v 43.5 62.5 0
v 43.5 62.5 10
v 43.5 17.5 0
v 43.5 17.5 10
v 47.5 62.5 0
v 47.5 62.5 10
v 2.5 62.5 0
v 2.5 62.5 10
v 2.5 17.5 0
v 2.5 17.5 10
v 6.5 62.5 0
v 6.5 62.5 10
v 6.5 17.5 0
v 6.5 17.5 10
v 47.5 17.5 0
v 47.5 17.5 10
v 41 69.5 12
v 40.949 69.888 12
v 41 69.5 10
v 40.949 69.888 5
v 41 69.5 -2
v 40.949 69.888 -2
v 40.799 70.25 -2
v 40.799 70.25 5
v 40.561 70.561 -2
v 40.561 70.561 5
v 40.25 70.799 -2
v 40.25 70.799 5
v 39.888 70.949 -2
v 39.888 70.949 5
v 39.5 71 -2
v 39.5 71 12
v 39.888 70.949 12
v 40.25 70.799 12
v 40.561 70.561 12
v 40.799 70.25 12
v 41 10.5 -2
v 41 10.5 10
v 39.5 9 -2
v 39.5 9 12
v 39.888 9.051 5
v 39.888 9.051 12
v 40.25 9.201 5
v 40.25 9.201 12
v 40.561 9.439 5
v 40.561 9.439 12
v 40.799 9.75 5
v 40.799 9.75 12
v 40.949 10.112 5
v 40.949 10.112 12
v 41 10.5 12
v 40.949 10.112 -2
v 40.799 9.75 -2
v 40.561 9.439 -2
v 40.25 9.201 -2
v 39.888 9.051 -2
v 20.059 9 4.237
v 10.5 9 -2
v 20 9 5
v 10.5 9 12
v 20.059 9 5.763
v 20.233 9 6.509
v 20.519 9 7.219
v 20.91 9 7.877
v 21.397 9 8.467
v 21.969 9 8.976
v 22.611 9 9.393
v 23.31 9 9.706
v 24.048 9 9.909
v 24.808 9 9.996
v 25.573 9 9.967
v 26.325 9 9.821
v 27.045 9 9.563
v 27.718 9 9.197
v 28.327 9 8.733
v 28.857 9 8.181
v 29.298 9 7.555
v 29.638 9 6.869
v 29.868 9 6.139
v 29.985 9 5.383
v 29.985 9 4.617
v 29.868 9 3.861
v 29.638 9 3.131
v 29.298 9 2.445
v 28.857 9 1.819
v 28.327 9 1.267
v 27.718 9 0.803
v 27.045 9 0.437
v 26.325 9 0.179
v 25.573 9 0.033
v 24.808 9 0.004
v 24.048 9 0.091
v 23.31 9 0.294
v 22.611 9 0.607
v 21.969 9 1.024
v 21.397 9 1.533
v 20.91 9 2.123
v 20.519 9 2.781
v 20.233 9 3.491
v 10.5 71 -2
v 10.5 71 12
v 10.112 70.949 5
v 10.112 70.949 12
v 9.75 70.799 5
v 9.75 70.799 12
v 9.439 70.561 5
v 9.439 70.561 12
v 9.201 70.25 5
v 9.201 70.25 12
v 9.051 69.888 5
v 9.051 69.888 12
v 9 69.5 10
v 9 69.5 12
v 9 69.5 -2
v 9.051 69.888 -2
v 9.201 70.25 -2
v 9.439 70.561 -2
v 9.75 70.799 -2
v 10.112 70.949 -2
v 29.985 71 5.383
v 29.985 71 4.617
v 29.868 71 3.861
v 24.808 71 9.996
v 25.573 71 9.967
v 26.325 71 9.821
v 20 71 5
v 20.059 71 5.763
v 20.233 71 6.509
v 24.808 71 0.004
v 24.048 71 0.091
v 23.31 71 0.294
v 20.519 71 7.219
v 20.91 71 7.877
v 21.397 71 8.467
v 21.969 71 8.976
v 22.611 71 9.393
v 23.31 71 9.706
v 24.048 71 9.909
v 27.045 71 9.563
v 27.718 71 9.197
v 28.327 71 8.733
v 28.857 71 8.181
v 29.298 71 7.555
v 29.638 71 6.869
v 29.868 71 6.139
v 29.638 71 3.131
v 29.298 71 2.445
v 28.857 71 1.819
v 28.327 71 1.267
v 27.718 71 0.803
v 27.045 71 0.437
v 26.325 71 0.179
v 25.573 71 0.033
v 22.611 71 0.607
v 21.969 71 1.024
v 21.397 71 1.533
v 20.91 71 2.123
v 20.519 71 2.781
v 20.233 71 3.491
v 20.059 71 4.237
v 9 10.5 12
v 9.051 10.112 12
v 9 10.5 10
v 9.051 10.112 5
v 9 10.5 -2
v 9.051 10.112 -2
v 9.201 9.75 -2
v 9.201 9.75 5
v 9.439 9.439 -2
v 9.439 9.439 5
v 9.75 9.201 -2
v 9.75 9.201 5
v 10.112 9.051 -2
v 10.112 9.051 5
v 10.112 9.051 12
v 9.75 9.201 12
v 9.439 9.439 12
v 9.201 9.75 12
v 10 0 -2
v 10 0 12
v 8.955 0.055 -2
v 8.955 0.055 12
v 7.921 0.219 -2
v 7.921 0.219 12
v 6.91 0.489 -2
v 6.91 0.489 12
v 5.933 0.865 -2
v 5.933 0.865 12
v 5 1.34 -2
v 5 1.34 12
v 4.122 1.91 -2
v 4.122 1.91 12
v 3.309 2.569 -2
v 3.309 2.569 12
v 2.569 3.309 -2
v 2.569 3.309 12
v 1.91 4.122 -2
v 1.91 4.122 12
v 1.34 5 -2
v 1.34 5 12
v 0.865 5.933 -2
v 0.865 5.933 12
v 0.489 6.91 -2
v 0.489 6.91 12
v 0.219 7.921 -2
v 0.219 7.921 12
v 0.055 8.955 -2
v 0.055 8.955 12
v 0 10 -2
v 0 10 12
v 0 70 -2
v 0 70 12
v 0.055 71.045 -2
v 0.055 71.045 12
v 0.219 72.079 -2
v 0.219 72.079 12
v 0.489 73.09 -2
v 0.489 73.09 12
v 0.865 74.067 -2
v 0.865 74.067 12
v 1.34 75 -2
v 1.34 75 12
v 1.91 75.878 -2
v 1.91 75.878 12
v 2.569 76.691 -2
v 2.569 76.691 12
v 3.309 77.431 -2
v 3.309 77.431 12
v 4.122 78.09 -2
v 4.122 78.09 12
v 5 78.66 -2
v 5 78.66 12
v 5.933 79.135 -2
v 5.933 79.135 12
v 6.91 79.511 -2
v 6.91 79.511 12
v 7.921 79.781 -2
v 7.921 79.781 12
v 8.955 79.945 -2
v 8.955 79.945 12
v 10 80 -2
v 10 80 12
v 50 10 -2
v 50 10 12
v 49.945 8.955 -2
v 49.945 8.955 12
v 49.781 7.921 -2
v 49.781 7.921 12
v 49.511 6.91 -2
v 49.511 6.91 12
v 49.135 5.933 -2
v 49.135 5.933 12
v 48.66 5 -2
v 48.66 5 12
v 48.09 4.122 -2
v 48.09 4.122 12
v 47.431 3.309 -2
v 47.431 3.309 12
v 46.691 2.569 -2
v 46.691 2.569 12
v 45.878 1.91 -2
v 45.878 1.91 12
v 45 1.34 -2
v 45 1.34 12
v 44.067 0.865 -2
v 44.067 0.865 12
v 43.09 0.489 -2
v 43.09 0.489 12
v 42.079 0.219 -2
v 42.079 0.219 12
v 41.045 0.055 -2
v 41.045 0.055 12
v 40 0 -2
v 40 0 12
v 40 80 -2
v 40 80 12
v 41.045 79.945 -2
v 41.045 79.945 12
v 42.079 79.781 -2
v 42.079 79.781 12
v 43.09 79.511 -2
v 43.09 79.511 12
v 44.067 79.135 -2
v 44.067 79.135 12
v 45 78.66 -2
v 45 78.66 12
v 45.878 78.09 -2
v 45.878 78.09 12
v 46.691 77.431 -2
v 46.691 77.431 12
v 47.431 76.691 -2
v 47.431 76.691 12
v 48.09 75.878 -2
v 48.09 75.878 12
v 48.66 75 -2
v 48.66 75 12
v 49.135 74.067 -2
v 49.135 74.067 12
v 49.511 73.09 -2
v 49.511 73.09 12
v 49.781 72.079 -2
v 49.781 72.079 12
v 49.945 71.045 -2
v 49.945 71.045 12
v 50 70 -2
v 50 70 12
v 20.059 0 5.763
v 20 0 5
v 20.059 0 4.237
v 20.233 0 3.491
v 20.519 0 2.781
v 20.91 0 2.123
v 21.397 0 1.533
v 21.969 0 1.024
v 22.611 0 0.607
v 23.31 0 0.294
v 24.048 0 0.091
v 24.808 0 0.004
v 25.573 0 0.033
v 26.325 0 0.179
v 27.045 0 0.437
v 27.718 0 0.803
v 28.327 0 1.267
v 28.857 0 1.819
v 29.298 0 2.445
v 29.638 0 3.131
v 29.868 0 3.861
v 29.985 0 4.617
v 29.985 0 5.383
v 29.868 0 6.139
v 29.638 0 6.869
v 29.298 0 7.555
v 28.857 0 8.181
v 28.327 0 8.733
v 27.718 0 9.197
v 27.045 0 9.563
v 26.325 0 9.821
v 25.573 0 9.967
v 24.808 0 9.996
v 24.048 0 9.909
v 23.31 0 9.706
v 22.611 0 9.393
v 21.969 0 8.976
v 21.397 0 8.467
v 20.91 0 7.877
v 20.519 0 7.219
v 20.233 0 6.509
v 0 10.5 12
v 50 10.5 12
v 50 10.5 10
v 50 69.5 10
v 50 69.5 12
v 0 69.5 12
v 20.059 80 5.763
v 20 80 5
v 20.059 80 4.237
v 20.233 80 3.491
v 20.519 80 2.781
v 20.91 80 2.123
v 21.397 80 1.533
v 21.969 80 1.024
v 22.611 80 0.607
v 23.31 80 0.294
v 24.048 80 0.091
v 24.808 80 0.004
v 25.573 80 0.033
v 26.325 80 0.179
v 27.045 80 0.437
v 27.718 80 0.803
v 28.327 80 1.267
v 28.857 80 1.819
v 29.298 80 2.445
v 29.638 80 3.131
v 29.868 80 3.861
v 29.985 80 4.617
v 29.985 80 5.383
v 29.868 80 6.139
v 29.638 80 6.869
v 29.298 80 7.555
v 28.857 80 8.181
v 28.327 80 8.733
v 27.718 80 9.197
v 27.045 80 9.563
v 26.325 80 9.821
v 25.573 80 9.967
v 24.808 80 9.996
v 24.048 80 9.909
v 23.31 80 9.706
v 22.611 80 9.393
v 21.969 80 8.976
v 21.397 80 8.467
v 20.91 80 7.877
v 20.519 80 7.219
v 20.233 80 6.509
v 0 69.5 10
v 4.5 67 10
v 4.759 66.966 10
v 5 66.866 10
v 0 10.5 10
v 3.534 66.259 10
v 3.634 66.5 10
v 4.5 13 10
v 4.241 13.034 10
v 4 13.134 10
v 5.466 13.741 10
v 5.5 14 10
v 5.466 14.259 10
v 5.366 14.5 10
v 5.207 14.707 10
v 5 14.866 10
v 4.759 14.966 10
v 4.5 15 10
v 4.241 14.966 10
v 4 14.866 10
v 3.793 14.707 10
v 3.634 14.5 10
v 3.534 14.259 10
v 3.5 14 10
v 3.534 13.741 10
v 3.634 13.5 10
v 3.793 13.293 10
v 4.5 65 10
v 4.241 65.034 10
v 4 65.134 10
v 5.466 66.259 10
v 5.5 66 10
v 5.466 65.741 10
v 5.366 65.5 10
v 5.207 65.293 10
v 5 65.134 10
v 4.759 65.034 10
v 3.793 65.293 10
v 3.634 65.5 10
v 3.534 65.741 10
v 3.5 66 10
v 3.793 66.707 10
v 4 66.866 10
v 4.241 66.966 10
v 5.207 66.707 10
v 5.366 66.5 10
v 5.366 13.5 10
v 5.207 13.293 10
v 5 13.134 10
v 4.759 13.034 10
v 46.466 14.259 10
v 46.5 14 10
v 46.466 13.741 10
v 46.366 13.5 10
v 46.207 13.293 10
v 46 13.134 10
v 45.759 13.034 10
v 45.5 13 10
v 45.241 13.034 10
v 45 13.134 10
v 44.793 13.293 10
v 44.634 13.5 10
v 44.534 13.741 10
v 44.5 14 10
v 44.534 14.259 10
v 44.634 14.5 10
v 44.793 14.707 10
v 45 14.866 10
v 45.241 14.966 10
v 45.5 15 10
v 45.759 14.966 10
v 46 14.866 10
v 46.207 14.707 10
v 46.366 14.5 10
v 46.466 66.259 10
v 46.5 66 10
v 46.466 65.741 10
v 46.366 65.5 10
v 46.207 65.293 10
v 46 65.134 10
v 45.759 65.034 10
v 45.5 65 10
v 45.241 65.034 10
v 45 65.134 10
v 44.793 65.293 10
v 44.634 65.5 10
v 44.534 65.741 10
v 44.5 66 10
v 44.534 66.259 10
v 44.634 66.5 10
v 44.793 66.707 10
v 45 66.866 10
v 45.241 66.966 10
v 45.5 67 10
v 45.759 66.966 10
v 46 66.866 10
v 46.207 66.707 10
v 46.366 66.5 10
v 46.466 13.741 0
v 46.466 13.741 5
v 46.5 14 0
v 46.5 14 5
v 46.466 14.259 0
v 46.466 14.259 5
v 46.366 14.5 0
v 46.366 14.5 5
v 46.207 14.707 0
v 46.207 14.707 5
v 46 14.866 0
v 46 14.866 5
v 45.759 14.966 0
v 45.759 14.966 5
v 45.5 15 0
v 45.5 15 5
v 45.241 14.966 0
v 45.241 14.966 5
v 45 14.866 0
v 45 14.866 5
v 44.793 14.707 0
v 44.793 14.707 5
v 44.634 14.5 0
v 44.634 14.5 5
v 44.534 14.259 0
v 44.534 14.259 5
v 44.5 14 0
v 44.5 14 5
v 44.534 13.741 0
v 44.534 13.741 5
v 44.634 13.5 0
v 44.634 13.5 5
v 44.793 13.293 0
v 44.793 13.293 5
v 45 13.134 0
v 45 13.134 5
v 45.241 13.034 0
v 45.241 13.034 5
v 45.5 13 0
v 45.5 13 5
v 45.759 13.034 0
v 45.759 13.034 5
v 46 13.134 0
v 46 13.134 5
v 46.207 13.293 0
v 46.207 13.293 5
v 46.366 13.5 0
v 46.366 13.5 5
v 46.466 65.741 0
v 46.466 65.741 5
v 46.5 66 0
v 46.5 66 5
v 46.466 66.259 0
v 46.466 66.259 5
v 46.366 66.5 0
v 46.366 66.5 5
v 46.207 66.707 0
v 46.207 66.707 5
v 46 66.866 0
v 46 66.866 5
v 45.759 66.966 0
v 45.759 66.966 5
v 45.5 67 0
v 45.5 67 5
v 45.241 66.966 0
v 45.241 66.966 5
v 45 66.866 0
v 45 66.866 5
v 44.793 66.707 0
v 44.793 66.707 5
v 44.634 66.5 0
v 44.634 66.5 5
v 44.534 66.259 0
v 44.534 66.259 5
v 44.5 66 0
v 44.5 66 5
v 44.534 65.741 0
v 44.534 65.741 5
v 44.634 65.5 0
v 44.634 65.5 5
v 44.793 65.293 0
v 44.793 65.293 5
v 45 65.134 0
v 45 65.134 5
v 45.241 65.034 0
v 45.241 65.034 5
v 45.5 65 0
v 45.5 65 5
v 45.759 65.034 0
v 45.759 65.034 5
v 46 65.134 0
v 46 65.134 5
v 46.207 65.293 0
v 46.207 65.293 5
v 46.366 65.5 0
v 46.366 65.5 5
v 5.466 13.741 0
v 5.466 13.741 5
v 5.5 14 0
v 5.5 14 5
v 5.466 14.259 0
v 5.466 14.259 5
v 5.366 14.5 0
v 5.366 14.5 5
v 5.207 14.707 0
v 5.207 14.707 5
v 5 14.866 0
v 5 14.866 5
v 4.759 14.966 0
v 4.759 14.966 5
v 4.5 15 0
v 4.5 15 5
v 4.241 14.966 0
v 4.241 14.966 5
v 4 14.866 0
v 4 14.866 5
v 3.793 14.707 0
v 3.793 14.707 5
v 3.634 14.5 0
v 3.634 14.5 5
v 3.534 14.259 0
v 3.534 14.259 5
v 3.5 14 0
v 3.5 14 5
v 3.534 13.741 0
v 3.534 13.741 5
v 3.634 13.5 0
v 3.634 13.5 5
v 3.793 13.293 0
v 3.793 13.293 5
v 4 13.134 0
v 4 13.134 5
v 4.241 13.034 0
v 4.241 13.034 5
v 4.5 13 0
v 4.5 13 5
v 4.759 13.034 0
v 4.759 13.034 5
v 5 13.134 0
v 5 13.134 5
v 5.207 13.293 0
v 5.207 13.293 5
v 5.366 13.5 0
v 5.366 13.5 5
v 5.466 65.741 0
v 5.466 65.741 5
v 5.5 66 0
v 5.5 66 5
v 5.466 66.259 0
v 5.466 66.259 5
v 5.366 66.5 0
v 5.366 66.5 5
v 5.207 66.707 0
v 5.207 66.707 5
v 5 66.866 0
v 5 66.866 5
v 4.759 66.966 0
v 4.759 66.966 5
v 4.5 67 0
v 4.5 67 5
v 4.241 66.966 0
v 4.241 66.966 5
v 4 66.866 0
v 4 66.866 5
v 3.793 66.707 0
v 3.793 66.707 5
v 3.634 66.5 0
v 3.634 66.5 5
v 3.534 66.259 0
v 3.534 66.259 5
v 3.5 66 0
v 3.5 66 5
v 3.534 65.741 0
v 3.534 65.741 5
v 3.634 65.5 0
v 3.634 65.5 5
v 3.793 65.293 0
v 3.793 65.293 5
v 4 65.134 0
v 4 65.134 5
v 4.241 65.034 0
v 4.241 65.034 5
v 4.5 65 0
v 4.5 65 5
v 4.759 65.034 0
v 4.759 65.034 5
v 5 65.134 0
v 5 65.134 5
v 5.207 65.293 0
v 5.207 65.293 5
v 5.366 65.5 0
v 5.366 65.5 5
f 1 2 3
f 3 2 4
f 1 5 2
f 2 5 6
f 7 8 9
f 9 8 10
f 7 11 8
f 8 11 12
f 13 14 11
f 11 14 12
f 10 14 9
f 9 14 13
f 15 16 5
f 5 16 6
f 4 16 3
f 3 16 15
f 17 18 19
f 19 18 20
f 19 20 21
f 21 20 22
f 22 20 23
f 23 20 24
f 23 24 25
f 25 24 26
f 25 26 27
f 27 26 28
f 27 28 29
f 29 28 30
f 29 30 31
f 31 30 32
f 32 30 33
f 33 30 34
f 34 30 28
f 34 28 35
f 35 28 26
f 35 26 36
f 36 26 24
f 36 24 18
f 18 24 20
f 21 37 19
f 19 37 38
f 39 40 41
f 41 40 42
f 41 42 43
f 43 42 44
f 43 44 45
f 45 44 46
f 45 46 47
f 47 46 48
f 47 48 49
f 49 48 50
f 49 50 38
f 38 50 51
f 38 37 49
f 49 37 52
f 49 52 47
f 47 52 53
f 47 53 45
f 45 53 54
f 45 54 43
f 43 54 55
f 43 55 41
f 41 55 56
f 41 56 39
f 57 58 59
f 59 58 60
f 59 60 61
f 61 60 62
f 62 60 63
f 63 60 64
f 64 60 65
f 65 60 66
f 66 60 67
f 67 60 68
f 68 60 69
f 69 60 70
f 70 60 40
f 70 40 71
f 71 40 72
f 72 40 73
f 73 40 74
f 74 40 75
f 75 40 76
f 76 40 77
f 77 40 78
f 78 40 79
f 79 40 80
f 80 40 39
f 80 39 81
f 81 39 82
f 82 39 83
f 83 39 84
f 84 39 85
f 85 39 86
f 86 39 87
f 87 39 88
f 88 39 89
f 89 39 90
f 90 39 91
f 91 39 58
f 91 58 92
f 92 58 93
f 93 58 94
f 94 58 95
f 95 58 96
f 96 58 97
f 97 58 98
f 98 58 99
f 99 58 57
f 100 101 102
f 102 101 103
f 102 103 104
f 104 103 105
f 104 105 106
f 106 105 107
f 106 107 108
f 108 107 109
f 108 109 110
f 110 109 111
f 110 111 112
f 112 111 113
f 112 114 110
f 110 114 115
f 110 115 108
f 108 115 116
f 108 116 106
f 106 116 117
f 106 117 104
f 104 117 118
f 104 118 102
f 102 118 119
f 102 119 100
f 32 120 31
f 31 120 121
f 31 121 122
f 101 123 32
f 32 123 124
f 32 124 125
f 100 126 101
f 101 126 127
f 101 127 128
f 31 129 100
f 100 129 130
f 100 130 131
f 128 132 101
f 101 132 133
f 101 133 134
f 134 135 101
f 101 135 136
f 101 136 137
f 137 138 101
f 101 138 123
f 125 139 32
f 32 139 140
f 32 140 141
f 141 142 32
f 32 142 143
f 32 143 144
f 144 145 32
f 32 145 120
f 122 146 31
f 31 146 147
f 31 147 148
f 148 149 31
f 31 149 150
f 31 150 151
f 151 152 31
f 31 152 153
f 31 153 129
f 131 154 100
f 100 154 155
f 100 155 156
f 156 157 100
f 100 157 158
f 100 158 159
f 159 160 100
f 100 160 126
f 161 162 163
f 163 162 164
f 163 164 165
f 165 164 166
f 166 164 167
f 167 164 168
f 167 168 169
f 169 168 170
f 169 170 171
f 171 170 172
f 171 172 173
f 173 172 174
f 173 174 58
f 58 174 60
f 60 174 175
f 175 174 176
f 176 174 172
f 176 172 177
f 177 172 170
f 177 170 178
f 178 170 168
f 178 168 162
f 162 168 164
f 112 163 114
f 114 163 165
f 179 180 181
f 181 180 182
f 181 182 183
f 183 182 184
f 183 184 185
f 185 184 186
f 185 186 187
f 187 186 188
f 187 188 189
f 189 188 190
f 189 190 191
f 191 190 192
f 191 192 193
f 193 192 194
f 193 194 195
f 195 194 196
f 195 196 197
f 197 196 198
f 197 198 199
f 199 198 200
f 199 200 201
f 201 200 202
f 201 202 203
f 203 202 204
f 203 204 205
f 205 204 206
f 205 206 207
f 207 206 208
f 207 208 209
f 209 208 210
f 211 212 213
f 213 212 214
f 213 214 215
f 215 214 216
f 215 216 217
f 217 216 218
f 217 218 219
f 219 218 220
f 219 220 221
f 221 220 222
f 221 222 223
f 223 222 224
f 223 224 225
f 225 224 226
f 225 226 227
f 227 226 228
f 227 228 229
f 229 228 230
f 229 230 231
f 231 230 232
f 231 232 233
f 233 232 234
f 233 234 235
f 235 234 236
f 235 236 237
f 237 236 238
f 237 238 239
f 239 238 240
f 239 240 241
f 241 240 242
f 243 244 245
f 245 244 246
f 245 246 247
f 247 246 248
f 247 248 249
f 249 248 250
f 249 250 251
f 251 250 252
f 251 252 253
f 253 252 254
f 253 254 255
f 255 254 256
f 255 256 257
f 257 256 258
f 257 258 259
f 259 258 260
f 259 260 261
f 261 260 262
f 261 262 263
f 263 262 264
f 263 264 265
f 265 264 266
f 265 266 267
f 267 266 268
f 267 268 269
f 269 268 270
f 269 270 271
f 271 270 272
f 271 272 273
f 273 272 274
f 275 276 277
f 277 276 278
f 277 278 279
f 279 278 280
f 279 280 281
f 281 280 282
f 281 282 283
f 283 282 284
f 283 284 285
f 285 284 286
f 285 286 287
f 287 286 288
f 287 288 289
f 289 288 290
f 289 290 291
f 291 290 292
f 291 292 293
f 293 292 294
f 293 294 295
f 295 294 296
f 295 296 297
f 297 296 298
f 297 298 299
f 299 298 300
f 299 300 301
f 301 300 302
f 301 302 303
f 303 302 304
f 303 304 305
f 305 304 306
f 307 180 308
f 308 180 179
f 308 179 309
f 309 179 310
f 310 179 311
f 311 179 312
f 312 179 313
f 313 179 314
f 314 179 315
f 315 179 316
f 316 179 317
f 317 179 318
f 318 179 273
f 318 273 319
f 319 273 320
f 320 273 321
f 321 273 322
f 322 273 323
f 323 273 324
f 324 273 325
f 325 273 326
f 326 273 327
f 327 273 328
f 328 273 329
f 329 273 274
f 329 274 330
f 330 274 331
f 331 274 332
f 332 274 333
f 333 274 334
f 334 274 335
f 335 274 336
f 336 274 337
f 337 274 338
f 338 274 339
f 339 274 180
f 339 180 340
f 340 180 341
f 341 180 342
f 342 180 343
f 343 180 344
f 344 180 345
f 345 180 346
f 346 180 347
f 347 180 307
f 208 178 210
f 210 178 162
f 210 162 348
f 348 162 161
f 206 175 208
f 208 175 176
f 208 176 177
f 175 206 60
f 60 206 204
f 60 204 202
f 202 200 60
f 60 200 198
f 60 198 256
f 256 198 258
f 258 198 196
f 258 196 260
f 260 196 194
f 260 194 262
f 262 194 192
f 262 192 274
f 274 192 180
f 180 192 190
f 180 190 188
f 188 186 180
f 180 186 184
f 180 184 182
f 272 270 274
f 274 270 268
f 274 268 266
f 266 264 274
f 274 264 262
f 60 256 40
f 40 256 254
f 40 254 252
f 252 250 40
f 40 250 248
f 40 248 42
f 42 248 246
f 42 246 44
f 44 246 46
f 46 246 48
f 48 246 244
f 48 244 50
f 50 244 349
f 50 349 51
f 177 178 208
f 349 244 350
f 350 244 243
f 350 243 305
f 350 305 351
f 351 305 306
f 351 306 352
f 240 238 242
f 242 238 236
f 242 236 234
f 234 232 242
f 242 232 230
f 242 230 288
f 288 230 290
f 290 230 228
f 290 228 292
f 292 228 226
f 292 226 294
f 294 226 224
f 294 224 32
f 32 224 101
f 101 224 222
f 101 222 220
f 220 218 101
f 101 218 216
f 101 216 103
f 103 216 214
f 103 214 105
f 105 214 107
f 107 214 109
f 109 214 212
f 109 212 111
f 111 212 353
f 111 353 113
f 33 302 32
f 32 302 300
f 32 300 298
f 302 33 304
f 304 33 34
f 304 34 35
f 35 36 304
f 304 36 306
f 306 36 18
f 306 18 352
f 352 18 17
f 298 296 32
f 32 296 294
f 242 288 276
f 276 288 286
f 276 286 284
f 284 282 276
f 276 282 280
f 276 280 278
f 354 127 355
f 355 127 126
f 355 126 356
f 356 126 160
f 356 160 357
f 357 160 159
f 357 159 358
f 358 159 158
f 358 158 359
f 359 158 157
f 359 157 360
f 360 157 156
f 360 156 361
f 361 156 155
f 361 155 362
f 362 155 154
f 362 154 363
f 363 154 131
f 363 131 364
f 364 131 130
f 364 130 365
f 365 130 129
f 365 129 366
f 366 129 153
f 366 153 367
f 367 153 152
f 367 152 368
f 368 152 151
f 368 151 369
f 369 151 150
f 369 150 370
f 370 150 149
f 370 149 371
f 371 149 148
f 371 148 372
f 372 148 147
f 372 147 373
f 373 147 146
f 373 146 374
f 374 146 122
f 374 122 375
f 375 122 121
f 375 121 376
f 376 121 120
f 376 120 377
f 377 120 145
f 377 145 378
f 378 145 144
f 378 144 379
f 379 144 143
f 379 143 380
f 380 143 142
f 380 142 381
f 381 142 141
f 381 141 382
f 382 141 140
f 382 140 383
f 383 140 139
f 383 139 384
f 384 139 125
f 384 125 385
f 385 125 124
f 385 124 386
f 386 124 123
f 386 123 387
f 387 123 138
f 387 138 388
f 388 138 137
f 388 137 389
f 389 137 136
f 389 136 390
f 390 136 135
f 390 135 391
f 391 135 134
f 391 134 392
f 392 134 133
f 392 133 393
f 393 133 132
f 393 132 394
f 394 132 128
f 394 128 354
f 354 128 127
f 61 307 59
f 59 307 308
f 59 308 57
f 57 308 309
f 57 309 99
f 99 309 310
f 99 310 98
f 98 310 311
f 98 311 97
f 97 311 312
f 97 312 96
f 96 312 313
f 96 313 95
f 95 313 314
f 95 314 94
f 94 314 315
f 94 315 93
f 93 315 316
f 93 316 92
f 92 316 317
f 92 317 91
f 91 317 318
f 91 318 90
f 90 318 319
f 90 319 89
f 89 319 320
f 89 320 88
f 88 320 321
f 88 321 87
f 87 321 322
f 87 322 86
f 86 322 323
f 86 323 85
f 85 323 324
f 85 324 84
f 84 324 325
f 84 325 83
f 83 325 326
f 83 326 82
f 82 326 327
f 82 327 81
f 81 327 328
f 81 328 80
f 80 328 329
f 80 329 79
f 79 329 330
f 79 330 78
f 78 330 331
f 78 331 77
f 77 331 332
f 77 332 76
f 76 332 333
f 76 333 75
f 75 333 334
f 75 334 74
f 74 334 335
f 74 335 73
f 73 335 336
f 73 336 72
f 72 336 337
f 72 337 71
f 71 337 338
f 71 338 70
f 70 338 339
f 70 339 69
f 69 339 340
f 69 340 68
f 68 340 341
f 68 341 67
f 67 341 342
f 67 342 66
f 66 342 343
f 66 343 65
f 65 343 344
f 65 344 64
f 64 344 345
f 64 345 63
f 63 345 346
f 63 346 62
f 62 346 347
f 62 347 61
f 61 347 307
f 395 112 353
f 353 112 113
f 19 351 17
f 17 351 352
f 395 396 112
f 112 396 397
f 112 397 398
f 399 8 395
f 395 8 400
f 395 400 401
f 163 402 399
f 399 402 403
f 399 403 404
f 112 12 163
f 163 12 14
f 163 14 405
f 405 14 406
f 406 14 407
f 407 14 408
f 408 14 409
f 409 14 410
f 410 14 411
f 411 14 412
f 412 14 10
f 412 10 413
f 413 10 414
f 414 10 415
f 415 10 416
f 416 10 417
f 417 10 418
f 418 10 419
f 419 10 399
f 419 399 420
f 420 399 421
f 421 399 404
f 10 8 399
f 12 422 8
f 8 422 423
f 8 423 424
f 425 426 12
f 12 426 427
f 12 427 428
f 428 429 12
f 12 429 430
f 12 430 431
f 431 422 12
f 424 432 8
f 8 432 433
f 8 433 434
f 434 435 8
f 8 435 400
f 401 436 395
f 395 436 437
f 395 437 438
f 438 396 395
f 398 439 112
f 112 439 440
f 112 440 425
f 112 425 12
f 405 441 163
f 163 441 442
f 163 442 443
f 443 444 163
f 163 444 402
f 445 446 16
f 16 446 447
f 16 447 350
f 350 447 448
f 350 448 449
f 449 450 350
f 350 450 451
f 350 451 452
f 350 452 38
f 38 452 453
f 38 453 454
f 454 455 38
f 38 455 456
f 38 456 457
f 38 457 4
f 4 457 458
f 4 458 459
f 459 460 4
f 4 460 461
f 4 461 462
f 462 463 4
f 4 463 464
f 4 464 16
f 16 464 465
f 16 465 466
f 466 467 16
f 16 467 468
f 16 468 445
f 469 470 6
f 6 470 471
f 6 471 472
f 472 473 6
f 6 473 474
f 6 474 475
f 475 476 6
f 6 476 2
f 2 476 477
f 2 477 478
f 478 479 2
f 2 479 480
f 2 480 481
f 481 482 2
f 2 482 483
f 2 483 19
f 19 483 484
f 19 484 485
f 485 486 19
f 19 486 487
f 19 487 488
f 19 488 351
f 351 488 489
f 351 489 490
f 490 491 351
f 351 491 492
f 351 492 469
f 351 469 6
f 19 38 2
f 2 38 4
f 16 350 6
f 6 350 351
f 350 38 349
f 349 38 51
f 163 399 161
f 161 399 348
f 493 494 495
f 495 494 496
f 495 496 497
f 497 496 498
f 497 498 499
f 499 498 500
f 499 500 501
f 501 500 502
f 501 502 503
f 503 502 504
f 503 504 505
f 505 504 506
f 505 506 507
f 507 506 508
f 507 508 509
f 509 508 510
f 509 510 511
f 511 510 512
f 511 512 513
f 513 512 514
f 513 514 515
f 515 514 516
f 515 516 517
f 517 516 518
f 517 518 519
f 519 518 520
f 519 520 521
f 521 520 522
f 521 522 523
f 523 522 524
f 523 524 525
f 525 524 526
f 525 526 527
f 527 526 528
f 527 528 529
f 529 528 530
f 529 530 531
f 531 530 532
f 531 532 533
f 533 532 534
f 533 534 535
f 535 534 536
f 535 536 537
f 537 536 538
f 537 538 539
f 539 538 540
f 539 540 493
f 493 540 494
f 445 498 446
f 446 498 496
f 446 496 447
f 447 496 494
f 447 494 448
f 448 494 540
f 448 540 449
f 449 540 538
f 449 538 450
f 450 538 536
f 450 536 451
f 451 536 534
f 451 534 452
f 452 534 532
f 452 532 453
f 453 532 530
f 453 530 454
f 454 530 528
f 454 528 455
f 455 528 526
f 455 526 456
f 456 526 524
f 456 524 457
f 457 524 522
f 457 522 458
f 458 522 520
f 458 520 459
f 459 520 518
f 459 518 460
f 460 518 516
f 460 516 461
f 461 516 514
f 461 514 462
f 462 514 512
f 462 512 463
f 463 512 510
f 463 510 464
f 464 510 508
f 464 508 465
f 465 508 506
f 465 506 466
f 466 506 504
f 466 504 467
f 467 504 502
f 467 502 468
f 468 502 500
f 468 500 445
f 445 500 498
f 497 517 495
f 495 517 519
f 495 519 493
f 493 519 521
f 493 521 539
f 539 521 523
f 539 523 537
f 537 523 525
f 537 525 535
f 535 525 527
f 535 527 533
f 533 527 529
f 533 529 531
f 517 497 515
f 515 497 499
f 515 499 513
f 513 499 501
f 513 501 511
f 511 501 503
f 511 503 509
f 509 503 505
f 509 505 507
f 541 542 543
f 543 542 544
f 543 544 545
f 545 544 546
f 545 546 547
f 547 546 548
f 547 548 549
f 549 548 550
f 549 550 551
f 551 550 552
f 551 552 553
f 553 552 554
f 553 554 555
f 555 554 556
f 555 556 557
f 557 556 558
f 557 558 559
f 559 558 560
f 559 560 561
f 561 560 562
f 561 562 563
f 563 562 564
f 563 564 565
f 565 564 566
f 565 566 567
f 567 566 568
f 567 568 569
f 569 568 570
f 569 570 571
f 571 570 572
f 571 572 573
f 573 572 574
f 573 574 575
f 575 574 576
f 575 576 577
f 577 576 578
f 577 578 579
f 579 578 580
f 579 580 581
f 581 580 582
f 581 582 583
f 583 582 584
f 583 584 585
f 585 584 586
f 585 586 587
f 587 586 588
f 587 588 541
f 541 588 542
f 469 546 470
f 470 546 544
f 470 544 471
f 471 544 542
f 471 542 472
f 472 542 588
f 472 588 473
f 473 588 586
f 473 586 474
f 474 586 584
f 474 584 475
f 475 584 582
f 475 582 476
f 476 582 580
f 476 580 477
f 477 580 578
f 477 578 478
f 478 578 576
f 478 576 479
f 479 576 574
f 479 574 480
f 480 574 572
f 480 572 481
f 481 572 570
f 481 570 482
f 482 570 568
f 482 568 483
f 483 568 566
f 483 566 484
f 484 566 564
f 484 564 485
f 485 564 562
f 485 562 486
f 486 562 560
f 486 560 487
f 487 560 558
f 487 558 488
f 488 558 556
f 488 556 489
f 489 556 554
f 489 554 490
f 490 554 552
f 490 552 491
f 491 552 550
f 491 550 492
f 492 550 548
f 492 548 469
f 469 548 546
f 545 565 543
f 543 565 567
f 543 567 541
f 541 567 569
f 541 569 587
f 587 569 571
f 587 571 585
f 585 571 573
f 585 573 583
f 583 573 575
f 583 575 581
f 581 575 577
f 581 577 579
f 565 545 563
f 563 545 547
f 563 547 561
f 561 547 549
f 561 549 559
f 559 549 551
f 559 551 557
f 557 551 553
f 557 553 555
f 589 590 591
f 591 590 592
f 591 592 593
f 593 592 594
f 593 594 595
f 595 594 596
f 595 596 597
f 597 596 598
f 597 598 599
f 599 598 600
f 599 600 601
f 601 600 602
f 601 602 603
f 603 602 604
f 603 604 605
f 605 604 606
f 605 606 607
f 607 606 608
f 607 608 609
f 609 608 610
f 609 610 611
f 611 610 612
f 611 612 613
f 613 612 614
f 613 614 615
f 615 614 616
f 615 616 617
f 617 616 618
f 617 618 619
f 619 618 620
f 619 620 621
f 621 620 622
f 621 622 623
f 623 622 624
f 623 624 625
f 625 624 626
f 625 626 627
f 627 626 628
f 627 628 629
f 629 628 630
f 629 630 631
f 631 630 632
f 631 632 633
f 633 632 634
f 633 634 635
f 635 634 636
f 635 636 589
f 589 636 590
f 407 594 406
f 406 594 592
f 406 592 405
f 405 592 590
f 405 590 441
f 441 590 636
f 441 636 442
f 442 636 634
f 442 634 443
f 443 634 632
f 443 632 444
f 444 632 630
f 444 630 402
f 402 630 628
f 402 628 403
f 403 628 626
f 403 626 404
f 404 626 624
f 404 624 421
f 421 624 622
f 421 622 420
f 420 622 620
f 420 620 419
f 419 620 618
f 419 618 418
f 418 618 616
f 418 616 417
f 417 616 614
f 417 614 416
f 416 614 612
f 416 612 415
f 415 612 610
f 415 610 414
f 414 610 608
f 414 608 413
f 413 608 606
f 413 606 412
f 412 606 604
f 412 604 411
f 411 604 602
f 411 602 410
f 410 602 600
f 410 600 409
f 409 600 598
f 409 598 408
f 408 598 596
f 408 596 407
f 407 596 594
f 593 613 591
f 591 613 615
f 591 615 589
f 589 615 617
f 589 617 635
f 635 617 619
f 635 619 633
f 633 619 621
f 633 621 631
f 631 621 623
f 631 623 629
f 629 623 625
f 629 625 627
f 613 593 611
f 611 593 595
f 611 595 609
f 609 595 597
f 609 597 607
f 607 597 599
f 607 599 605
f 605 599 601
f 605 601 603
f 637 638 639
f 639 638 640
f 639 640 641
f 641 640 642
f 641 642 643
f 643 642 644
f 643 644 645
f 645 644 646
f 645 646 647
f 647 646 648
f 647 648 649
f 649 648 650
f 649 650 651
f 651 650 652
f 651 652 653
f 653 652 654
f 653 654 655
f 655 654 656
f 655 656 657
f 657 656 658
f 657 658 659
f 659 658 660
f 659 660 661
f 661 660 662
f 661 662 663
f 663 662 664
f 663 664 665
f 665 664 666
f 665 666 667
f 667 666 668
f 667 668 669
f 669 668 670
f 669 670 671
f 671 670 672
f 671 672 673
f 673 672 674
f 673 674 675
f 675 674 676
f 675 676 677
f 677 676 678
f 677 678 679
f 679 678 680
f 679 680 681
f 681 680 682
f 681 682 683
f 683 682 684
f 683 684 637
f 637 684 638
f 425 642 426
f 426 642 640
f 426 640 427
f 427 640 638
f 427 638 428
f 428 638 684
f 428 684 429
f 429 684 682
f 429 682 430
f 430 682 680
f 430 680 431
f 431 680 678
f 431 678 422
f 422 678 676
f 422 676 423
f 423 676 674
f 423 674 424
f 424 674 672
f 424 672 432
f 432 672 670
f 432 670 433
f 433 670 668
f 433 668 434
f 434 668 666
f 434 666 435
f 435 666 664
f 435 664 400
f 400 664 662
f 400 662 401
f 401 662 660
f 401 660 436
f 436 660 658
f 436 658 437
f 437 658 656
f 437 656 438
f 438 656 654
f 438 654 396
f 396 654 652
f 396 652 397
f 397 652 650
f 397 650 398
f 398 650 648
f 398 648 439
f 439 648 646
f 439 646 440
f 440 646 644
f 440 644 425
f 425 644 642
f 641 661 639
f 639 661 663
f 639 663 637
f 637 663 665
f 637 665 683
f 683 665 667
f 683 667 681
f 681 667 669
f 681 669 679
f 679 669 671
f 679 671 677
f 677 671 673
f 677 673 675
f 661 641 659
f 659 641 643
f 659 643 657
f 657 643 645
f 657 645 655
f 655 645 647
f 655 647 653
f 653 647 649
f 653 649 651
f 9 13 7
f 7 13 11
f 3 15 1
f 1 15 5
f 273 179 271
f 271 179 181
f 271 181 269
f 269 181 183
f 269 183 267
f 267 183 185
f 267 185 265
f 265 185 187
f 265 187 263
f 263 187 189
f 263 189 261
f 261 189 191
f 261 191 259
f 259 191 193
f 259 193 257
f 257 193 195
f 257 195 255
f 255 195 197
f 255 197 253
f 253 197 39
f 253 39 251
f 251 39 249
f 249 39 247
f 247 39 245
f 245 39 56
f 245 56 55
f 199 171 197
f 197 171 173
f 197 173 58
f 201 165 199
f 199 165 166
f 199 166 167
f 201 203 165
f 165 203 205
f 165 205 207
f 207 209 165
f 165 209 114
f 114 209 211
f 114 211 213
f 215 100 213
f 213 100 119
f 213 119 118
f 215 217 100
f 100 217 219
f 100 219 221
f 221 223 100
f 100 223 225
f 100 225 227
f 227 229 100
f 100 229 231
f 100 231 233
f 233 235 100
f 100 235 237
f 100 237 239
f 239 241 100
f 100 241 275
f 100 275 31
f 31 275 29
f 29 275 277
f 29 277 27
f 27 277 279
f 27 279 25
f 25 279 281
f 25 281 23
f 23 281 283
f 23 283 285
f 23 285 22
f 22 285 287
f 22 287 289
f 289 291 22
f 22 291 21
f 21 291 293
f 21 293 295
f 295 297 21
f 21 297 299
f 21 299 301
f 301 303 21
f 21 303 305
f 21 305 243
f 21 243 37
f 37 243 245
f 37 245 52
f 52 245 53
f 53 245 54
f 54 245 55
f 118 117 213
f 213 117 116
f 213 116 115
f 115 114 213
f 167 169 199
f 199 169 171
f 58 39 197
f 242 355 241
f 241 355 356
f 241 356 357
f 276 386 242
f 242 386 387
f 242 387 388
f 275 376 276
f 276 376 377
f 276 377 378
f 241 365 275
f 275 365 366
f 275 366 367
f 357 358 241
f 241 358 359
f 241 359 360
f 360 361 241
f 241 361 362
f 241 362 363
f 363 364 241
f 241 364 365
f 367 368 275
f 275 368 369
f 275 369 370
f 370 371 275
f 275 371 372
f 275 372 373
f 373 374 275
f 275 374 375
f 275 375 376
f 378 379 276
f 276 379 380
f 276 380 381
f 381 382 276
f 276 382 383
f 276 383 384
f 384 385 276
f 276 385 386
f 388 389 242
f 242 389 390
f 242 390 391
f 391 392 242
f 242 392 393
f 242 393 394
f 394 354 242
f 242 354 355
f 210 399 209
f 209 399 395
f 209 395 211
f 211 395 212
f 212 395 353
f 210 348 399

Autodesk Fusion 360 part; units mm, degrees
sketch "Sketch1" plane through (0, 0, 0) normal (0, 0, 1) x (1, 0, 0)
  line L0 (0, 0) -> (50, 0)
  line L1 (50, 0) -> (50, 80)
  line L2 (50, 80) -> (0, 80)
  line L3 (0, 80) -> (0, 0)
  line L4 (9, 9) -> (41, 9)
  line L5 (41, 9) -> (41, 71)
  line L6 (41, 71) -> (9, 71)
  line L7 (9, 71) -> (9, 9)
  line L8 (2, 62.5) -> (7, 62.5)
  line L9 (7, 62.5) -> (7, 17.5)
  line L10 (7, 17.5) -> (2, 17.5)
  line L11 (2, 17.5) -> (2, 62.5)
  line L12 (0, 40) -> (2, 40)
  line L13 (25, 71) -> (25, 60)
  line L14 (48, 62.5) -> (43, 62.5)
  line L15 (48, 17.5) -> (48, 62.5)
  line L16 (43, 62.5) -> (43, 17.5)
  line L17 (43, 17.5) -> (48, 17.5)
  dimension "d1" = 50
  dimension "d2" = 80
  dimension "d3" = -9
  dimension "d4" = 45
  dimension "d5" = 90
  dimension "d6" = 2
  dimension "d7" = 5
extrude "Extrude1" add sketch "Sketch1" along normal blind 10
sketch "Sketch2" plane through (0, 0, 0) normal (0, 0, -1) x (1, 0, 0)
  line L0 (2, -17.5) -> (7, -17.5)
  line L1 (7, -17.5) -> (7, -62.5)
  line L2 (7, -62.5) -> (2, -62.5)
  line L3 (2, -62.5) -> (2, -17.5)
  line L4 (43, -17.5) -> (48, -17.5)
  line L5 (48, -17.5) -> (48, -62.5)
  line L6 (48, -62.5) -> (43, -62.5)
  line L7 (43, -62.5) -> (43, -17.5)
  line L8 (9, -71) -> (9, -9)
  line L9 (9, -9) -> (41, -9)
  line L10 (41, -9) -> (41, -71)
  line L11 (41, -71) -> (9, -71)
  line L12 (0, 0) -> (0, -80)
  line L13 (0, -80) -> (50, -80)
  line L14 (50, -80) -> (50, 0)
  line L15 (50, 0) -> (0, 0)
  line L16 (0, 0) -> (50, 0)
  line L17 (50, 0) -> (50, -80)
  line L18 (50, -80) -> (0, -80)
  line L19 (0, -80) -> (0, 0)
extrude "Extrude2" add sketch "Sketch2" along normal blind 2 contours L0 L1 L2 L3 | L4 L5 L6 L7 | L12 L13 L14 L15 L16 L17 L18 L19
sketch "Sketch3" plane through (0, 0, 10) normal (0, 0, 1) x (-1, 0, 0)
  line L0 (-7, -17.5) -> (-2, -17.5)
  line L1 (-2, -17.5) -> (-2, -62.5)
  line L2 (-2, -62.5) -> (-7, -62.5)
  line L3 (-7, -62.5) -> (-7, -17.5)
  line L4 (-9, -9) -> (-9, -71)
  line L5 (-9, -71) -> (-41, -71)
  line L6 (-41, -71) -> (-41, -9)
  line L7 (-41, -9) -> (-9, -9)
  line L8 (-48, -17.5) -> (-43, -17.5)
  line L9 (-43, -17.5) -> (-43, -62.5)
  line L10 (-43, -62.5) -> (-48, -62.5)
  line L11 (-48, -62.5) -> (-48, -17.5)
  line L12 (0, -80) -> (0, 0)
  line L13 (0, 0) -> (-50, 0)
  line L14 (-50, 0) -> (-50, -80)
  line L15 (-50, -80) -> (0, -80)
  line L16 (0, -80) -> (-50, -80)
  line L17 (-50, -80) -> (-50, 0)
  line L18 (-50, 0) -> (0, 0)
  line L19 (0, 0) -> (0, -80)
  line L20 (0, -10.5) -> (-50, -10.5)
  line L21 (-50, -10.5) -> (-50, -69.5)
  line L22 (-50, -69.5) -> (0, -69.5)
  line L23 (0, -69.5) -> (0, -10.5)
  line L24 (-4.5, -17.5) -> (-4.5, -10.5)
  line L25 (-4.5, -62.5) -> (-4.5, -69.5)
  line L26 (-45.5, -62.5) -> (-45.5, -69.5)
  line L27 (-45.5, -17.5) -> (-45.5, -10.5)
  circle A0 centre (-4.5, -14) radius 1
  circle A1 centre (-45.5, -14) radius 1
  circle A2 centre (-45.5, -66) radius 1
  circle A3 centre (-4.5, -66) radius 1
  dimension "d12" = 7
  dimension "d13" = 7
  dimension "d14" = 2
  dimension "d15" = 2
  dimension "d16" = 2
  dimension "d17" = 2
extrude "Extrude3" cut sketch "Sketch3" against normal blind 10 contours L24 A0 | L24 A0 | L25 A3 | L25 A3 | L27 A1 | L27 A1 | L26 A2 | L26 A2
extrude "Extrude4" add sketch "Sketch3" along normal blind 2 contours L4 L6 L7 L12 L13 L14 L17 L18 L19 L20 | L4 L5 L6 L12 L14 L15 L16 L17 L19 L22
sketch "Sketch4" plane through (0, 0, 0) normal (0, -1, 0) x (1, 0, 0)
  line L0 (50, -2) -> (50, 12)
  line L1 (50, 12) -> (0, 12)
  line L2 (0, 12) -> (0, -2)
  line L3 (0, -2) -> (50, -2)
  line L4 (25, 12) -> (25, -2)
  circle A0 centre (25, 5) radius 5
  dimension "d22" = 10
extrude "Extrude5" cut sketch "Sketch4" against normal blind 100 contours L4 A0 | L4 A0
sketch "Sketch5" plane through (0, 0, -2) normal (0, 0, -1) x (1, 0, 0)
  line L0 (41, -9) -> (41, -71)
  line L1 (41, -71) -> (9, -71)
  line L2 (9, -71) -> (9, -9)
  line L3 (9, -9) -> (41, -9)
  line L4 (0, -80) -> (50, -80)
  line L5 (50, -80) -> (50, 0)
  line L6 (50, 0) -> (0, 0)
  line L7 (0, 0) -> (0, -80)
  line L8 (10, -80) -> (40, -80)
  line L9 (50, -70) -> (50, -10)
  line L10 (40, 0) -> (10, 0)
  line L11 (0, -10) -> (0, -70)
  line L12 (39.5, -9) -> (10.5, -9)
  line L13 (9, -10.5) -> (9, -69.5)
  line L14 (10.5, -71) -> (39.5, -71)
  line L15 (41, -69.5) -> (41, -10.5)
  arc A0 (10.5, -9) -> (9, -10.5) centre (10.5, -10.5) ccw
  arc A1 (41, -10.5) -> (39.5, -9) centre (39.5, -10.5) ccw
  arc A2 (9, -69.5) -> (10.5, -71) centre (10.5, -69.5) ccw
  arc A3 (39.5, -71) -> (41, -69.5) centre (39.5, -69.5) ccw
  arc A4 (10, 0) -> (0, -10) centre (10, -10) ccw
  arc A5 (50, -10) -> (40, 0) centre (40, -10) ccw
  arc A6 (0, -70) -> (10, -80) centre (10, -70) ccw
  arc A7 (40, -80) -> (50, -70) centre (40, -70) ccw
  point P0 (20, -71)
  point P1 (9, -10.5)
  point P2 (41, -10.5)
  point P3 (41, -69.5)
  point P4 (9, -69.5)
  dimension "d29" = 10
  dimension "d30" = 10
  dimension "d31" = 10
  dimension "d32" = 10
extrude "Extrude6" cut sketch "Sketch5" against normal blind 100 contours L4 L7 A6 | L4 L5 A7 | L6 L7 A4 | L5 L6 A5
extrude "Extrude7" add sketch "Sketch5" against normal up to surface (14 mm away) contours L0 L3 A1 | L0 L1 A3 | L2 L3 A0 | L1 L2 A2
extrude "Extrude8" add 1 faces at (48, 32.5, 3.3333) along direction (-1, 0, 0) blind 0.5
extrude "Extrude9" add 1 faces at (7, 47.5, 3.3333) along direction (-1, 0, 0) blind 0.5
extrude "Extrude10" add 1 faces at (2, 32.5, 3.3333) along direction (1, 0, 0) blind 0.5
extrude "Extrude11" add 1 faces at (43, 47.5, 3.3333) along direction (1, 0, 0) blind 0.5
